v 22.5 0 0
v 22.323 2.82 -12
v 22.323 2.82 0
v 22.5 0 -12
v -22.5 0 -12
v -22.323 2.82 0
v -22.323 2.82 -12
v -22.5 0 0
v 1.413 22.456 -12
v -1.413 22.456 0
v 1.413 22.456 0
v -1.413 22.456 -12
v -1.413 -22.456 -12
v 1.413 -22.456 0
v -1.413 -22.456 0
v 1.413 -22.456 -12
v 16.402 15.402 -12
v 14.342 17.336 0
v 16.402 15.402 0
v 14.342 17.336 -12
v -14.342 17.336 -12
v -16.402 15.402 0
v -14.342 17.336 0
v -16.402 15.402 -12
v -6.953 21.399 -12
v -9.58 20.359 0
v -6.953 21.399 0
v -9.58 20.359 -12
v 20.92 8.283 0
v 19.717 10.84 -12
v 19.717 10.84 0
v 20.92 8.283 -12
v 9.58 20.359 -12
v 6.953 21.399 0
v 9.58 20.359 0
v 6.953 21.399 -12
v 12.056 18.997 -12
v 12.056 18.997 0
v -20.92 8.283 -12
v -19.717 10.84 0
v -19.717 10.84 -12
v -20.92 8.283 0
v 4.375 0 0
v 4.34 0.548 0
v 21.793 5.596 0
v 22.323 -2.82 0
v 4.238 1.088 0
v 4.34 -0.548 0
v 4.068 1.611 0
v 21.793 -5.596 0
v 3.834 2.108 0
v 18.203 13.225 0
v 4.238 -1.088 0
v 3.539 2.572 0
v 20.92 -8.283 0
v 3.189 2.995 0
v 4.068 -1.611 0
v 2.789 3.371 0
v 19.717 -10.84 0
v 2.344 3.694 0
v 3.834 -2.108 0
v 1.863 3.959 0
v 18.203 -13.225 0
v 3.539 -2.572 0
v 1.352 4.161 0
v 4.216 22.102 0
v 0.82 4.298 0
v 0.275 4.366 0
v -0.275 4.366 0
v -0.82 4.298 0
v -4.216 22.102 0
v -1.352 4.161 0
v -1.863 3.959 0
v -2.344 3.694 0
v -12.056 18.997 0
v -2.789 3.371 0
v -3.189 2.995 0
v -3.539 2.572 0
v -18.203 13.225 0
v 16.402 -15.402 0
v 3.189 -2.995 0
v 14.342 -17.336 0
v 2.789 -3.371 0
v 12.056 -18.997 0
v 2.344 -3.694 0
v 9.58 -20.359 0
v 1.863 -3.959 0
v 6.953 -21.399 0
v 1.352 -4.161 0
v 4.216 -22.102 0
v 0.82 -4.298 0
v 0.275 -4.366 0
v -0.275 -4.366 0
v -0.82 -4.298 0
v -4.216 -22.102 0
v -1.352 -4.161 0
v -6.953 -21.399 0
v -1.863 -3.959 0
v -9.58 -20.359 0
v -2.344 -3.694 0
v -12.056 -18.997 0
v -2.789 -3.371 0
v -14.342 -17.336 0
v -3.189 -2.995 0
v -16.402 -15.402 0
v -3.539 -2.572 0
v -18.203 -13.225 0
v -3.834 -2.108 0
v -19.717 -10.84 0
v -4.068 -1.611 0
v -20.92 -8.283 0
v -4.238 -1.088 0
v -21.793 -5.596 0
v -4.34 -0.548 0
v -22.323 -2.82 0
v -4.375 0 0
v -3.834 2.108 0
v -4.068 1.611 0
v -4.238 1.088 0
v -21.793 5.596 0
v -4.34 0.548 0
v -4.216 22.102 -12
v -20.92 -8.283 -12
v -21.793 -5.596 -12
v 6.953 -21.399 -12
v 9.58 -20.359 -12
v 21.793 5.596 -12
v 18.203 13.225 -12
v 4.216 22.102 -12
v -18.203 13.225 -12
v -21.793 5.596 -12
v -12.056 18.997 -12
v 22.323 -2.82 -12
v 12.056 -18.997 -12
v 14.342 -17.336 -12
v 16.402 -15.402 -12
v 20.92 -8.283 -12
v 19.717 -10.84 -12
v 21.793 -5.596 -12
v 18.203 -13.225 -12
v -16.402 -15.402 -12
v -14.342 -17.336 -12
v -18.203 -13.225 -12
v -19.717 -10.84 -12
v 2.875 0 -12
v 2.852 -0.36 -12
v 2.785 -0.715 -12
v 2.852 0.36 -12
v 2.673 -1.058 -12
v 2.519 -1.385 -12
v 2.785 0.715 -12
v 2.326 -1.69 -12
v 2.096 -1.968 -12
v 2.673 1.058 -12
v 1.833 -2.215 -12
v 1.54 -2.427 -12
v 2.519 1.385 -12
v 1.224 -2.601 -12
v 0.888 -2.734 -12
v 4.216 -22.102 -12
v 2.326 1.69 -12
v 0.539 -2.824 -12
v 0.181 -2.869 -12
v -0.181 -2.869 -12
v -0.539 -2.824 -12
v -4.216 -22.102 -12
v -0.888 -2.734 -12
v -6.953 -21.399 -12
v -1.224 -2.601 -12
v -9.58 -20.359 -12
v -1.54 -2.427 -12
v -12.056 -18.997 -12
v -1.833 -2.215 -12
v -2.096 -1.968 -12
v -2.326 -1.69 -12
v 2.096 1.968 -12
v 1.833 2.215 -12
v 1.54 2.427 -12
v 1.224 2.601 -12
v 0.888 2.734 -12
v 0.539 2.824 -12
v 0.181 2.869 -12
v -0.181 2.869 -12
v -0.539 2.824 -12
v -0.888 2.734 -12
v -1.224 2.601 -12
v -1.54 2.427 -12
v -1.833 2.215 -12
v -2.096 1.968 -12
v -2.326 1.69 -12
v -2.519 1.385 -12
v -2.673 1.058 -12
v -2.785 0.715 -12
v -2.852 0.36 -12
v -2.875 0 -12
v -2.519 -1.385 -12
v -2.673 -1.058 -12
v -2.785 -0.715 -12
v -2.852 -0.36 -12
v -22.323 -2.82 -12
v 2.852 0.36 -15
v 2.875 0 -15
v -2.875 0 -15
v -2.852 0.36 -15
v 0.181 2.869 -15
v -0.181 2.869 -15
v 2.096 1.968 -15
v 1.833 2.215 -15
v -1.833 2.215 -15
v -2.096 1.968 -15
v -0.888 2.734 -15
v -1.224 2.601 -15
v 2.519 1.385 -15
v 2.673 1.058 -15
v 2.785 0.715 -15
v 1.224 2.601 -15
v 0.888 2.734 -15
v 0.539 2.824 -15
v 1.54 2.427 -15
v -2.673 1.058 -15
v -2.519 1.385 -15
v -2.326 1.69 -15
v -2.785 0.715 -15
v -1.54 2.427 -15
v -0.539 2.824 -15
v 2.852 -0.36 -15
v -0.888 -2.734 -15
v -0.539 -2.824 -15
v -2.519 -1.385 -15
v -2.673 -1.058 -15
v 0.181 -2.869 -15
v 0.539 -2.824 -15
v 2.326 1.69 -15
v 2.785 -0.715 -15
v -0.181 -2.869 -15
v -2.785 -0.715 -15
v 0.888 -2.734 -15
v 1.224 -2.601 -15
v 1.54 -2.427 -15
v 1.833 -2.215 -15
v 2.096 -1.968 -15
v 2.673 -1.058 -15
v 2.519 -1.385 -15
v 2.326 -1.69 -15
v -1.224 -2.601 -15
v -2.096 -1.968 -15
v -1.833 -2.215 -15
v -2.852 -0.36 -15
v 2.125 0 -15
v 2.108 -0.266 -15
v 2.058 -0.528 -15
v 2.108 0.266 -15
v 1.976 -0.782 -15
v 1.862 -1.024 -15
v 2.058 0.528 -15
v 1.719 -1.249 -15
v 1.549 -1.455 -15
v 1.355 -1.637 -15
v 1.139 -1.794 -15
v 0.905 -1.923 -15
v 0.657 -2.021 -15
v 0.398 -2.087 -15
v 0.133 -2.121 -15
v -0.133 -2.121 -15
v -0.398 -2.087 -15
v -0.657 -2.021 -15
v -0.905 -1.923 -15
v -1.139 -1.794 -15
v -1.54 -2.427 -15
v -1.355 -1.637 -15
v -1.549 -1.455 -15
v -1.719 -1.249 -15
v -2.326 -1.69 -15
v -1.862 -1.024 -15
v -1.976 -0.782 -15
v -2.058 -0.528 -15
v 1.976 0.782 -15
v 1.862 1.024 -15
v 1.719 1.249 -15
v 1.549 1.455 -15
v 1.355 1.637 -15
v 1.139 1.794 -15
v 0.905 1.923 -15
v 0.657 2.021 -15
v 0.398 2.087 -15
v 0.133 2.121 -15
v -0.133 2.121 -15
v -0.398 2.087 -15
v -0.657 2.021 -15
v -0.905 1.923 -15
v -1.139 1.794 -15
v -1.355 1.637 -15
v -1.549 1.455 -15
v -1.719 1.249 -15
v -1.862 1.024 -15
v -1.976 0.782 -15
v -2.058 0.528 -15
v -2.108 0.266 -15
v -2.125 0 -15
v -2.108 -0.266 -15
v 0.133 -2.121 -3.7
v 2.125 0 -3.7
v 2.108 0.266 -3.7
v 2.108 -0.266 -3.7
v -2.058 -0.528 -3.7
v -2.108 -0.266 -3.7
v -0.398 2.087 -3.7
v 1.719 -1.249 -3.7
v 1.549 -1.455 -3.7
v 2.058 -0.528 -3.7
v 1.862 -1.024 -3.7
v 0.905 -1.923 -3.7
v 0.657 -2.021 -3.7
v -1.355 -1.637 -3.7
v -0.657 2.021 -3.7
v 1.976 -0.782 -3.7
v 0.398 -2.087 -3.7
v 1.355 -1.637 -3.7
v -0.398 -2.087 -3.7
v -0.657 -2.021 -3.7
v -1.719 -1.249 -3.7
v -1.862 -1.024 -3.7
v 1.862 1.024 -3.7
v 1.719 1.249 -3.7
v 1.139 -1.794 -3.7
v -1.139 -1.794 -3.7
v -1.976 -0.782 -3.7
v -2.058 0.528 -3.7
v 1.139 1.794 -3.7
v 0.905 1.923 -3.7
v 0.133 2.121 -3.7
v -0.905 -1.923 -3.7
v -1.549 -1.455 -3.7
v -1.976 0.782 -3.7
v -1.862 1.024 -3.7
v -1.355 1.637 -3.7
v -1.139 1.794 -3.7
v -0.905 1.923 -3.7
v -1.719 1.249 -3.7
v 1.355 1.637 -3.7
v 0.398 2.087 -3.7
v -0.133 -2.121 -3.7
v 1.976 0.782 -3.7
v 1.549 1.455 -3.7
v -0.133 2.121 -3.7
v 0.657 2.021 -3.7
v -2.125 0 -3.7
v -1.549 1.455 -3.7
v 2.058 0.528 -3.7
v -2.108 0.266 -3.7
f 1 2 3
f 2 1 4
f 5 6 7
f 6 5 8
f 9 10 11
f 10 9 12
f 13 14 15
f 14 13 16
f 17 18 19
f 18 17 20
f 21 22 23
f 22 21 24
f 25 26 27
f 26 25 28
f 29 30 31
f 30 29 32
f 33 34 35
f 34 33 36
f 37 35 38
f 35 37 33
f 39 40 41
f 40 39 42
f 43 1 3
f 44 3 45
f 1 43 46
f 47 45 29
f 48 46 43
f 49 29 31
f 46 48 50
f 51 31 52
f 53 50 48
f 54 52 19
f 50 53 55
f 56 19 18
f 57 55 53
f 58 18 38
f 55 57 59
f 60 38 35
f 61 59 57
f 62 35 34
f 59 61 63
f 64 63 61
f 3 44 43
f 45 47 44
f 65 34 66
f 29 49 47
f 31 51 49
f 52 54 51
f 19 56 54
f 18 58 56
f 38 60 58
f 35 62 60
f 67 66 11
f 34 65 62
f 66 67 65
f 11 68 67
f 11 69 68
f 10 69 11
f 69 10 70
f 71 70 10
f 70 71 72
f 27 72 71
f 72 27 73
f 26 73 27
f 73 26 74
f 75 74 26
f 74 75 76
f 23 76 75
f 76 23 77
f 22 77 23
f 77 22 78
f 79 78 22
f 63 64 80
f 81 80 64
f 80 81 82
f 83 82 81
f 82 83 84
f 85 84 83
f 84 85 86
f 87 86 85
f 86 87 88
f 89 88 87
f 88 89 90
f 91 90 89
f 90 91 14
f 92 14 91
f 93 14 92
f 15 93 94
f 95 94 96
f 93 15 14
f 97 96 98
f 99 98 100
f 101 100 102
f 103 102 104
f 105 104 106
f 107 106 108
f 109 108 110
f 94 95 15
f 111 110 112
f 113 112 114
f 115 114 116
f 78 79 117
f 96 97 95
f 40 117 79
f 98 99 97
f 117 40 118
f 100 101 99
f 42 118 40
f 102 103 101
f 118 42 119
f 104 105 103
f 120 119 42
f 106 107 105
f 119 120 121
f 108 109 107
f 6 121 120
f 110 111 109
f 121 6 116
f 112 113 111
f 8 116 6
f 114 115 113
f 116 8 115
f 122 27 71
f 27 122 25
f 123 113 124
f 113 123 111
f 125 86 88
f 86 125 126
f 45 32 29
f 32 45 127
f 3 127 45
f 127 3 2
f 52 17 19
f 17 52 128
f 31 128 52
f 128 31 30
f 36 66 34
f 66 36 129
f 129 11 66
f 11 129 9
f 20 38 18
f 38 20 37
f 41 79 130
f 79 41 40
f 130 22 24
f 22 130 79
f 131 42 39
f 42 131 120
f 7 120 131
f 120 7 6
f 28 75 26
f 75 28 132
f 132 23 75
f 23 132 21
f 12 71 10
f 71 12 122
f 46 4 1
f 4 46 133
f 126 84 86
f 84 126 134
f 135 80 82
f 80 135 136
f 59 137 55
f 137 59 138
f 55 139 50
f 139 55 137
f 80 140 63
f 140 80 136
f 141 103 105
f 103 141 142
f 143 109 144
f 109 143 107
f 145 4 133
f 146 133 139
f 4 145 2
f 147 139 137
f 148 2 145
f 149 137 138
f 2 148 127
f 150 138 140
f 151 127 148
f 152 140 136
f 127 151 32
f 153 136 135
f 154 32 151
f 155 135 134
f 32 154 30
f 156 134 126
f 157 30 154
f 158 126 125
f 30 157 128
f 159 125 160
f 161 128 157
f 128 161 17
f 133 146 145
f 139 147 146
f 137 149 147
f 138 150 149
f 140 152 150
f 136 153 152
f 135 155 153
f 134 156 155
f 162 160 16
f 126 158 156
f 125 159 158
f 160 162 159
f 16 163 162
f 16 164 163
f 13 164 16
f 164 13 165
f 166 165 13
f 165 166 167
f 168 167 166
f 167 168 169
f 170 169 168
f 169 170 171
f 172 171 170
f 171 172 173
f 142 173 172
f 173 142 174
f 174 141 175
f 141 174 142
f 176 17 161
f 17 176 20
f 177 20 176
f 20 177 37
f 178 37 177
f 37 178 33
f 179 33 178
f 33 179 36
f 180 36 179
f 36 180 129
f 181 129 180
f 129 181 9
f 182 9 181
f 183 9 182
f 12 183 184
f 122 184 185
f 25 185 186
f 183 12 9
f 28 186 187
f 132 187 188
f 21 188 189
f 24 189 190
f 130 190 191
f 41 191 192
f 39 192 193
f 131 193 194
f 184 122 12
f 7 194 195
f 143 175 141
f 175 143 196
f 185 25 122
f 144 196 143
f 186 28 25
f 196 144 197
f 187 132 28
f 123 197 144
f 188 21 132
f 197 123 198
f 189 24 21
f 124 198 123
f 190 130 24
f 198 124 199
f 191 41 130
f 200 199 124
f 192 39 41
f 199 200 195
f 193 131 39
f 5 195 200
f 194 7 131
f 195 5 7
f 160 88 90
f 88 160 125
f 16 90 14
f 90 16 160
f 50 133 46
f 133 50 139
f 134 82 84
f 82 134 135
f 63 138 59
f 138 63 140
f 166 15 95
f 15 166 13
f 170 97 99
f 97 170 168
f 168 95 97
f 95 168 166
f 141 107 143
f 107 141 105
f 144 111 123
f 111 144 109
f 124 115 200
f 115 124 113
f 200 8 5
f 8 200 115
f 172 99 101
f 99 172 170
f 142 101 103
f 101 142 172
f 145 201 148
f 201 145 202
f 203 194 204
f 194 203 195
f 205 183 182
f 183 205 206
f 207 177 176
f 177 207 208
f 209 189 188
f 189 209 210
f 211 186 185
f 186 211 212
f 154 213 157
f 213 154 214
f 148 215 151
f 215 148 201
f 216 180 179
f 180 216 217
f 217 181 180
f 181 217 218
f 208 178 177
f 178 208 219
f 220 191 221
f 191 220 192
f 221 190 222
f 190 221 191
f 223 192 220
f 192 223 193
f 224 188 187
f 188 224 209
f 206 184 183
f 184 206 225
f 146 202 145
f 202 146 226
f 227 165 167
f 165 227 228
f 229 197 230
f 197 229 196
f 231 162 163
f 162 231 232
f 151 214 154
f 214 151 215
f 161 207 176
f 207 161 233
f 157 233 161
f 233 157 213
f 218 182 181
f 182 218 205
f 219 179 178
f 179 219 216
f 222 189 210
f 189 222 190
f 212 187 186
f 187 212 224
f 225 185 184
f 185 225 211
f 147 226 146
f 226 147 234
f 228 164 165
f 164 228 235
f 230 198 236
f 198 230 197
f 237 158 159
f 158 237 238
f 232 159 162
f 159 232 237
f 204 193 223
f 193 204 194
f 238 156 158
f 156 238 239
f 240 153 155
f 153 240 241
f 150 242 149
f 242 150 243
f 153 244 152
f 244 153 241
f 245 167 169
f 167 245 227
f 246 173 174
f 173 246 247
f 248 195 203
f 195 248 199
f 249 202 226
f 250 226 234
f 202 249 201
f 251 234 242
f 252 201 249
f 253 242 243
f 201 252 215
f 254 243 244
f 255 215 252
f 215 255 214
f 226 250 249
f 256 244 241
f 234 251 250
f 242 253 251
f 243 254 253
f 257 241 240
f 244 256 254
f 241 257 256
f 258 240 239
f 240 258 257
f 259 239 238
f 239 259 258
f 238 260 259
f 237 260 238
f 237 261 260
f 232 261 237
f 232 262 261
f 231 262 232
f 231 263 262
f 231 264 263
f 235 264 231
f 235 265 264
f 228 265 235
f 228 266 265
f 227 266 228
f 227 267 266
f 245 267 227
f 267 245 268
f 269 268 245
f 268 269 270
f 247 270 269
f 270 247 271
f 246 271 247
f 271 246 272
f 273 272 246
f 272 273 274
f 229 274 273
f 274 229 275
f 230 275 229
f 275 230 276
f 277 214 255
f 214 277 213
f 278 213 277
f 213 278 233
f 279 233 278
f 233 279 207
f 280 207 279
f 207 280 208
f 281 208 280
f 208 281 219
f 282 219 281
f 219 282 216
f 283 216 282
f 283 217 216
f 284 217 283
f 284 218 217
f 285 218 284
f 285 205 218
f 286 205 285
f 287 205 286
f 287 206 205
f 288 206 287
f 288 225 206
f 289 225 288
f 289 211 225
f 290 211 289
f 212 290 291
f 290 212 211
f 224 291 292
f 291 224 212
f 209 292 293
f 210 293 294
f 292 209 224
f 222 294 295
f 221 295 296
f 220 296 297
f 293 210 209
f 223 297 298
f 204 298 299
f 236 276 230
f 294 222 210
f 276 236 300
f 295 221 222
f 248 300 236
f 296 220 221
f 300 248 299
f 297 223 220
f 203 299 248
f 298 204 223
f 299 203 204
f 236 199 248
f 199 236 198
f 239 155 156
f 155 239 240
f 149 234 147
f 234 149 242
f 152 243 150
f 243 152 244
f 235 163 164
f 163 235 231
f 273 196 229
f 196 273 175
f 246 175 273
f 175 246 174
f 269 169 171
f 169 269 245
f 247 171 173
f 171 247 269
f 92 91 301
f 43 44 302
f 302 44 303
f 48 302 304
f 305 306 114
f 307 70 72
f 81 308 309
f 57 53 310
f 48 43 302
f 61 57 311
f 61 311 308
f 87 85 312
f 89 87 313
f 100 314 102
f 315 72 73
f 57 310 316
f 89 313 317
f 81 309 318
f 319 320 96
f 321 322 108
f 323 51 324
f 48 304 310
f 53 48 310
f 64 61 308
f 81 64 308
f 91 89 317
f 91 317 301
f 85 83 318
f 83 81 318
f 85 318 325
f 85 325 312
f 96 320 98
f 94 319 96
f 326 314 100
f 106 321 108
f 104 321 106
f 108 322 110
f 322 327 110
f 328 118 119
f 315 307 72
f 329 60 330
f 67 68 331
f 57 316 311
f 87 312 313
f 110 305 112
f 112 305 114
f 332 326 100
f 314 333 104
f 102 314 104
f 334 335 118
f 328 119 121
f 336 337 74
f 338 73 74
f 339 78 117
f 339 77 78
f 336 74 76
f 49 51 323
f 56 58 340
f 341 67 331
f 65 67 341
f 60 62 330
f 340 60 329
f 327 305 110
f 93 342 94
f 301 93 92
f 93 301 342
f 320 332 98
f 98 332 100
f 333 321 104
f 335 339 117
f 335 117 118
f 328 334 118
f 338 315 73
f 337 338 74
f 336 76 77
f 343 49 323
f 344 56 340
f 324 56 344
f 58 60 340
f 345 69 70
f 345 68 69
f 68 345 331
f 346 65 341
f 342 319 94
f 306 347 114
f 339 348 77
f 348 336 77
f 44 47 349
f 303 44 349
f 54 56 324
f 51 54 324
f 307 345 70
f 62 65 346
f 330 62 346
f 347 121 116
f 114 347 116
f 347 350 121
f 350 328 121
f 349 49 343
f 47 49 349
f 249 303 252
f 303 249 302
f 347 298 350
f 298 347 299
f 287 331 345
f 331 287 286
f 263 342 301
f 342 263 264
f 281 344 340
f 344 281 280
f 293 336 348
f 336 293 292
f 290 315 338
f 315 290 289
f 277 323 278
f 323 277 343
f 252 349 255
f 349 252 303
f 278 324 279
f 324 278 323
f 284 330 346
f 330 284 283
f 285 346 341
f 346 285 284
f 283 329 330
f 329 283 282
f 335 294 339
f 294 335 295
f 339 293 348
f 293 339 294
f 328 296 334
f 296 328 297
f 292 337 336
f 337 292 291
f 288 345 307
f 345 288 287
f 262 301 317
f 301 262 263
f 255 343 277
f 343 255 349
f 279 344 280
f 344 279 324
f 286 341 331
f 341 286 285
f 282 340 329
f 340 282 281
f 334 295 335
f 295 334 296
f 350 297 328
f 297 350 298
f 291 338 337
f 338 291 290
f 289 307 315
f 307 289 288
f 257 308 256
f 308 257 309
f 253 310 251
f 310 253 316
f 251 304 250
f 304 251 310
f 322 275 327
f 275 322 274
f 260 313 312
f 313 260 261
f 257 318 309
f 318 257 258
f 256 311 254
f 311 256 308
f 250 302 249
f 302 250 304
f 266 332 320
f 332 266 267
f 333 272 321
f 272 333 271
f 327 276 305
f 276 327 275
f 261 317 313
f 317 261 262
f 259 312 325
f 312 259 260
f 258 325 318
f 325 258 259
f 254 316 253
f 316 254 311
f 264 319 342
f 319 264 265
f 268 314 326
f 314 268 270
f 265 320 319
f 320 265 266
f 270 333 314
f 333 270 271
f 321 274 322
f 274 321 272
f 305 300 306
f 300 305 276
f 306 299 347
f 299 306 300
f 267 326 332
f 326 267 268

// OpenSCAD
$fn = 50;


difference() {
	union() {
		translate(v = [0, 0, -12.0000000000]) {
			cylinder(h = 12, r = 22.5000000000);
		}
		translate(v = [0, 0, -15.0000000000]) {
			cylinder(h = 15, r = 2.8750000000);
		}
	}
	union() {
		translate(v = [0, 0, 0]) {
			rotate(a = [0, 0, 0]) {
				difference() {
					union() {
						translate(v = [0, 0, -15.0000000000]) {
							cylinder(h = 15, r = 2.0000000000);
						}
						translate(v = [0, 0, -3.7000000000]) {
							cylinder(h = 3.7000000000, r1 = 2.1250000000, r2 = 4.3750000000);
						}
						translate(v = [0, 0, -15.0000000000]) {
							cylinder(h = 15, r = 2.1250000000);
						}
						translate(v = [0, 0, -15.0000000000]) {
							cylinder(h = 15, r = 2.0000000000);
						}
					}
					union();
				}
			}
		}
	}
}
